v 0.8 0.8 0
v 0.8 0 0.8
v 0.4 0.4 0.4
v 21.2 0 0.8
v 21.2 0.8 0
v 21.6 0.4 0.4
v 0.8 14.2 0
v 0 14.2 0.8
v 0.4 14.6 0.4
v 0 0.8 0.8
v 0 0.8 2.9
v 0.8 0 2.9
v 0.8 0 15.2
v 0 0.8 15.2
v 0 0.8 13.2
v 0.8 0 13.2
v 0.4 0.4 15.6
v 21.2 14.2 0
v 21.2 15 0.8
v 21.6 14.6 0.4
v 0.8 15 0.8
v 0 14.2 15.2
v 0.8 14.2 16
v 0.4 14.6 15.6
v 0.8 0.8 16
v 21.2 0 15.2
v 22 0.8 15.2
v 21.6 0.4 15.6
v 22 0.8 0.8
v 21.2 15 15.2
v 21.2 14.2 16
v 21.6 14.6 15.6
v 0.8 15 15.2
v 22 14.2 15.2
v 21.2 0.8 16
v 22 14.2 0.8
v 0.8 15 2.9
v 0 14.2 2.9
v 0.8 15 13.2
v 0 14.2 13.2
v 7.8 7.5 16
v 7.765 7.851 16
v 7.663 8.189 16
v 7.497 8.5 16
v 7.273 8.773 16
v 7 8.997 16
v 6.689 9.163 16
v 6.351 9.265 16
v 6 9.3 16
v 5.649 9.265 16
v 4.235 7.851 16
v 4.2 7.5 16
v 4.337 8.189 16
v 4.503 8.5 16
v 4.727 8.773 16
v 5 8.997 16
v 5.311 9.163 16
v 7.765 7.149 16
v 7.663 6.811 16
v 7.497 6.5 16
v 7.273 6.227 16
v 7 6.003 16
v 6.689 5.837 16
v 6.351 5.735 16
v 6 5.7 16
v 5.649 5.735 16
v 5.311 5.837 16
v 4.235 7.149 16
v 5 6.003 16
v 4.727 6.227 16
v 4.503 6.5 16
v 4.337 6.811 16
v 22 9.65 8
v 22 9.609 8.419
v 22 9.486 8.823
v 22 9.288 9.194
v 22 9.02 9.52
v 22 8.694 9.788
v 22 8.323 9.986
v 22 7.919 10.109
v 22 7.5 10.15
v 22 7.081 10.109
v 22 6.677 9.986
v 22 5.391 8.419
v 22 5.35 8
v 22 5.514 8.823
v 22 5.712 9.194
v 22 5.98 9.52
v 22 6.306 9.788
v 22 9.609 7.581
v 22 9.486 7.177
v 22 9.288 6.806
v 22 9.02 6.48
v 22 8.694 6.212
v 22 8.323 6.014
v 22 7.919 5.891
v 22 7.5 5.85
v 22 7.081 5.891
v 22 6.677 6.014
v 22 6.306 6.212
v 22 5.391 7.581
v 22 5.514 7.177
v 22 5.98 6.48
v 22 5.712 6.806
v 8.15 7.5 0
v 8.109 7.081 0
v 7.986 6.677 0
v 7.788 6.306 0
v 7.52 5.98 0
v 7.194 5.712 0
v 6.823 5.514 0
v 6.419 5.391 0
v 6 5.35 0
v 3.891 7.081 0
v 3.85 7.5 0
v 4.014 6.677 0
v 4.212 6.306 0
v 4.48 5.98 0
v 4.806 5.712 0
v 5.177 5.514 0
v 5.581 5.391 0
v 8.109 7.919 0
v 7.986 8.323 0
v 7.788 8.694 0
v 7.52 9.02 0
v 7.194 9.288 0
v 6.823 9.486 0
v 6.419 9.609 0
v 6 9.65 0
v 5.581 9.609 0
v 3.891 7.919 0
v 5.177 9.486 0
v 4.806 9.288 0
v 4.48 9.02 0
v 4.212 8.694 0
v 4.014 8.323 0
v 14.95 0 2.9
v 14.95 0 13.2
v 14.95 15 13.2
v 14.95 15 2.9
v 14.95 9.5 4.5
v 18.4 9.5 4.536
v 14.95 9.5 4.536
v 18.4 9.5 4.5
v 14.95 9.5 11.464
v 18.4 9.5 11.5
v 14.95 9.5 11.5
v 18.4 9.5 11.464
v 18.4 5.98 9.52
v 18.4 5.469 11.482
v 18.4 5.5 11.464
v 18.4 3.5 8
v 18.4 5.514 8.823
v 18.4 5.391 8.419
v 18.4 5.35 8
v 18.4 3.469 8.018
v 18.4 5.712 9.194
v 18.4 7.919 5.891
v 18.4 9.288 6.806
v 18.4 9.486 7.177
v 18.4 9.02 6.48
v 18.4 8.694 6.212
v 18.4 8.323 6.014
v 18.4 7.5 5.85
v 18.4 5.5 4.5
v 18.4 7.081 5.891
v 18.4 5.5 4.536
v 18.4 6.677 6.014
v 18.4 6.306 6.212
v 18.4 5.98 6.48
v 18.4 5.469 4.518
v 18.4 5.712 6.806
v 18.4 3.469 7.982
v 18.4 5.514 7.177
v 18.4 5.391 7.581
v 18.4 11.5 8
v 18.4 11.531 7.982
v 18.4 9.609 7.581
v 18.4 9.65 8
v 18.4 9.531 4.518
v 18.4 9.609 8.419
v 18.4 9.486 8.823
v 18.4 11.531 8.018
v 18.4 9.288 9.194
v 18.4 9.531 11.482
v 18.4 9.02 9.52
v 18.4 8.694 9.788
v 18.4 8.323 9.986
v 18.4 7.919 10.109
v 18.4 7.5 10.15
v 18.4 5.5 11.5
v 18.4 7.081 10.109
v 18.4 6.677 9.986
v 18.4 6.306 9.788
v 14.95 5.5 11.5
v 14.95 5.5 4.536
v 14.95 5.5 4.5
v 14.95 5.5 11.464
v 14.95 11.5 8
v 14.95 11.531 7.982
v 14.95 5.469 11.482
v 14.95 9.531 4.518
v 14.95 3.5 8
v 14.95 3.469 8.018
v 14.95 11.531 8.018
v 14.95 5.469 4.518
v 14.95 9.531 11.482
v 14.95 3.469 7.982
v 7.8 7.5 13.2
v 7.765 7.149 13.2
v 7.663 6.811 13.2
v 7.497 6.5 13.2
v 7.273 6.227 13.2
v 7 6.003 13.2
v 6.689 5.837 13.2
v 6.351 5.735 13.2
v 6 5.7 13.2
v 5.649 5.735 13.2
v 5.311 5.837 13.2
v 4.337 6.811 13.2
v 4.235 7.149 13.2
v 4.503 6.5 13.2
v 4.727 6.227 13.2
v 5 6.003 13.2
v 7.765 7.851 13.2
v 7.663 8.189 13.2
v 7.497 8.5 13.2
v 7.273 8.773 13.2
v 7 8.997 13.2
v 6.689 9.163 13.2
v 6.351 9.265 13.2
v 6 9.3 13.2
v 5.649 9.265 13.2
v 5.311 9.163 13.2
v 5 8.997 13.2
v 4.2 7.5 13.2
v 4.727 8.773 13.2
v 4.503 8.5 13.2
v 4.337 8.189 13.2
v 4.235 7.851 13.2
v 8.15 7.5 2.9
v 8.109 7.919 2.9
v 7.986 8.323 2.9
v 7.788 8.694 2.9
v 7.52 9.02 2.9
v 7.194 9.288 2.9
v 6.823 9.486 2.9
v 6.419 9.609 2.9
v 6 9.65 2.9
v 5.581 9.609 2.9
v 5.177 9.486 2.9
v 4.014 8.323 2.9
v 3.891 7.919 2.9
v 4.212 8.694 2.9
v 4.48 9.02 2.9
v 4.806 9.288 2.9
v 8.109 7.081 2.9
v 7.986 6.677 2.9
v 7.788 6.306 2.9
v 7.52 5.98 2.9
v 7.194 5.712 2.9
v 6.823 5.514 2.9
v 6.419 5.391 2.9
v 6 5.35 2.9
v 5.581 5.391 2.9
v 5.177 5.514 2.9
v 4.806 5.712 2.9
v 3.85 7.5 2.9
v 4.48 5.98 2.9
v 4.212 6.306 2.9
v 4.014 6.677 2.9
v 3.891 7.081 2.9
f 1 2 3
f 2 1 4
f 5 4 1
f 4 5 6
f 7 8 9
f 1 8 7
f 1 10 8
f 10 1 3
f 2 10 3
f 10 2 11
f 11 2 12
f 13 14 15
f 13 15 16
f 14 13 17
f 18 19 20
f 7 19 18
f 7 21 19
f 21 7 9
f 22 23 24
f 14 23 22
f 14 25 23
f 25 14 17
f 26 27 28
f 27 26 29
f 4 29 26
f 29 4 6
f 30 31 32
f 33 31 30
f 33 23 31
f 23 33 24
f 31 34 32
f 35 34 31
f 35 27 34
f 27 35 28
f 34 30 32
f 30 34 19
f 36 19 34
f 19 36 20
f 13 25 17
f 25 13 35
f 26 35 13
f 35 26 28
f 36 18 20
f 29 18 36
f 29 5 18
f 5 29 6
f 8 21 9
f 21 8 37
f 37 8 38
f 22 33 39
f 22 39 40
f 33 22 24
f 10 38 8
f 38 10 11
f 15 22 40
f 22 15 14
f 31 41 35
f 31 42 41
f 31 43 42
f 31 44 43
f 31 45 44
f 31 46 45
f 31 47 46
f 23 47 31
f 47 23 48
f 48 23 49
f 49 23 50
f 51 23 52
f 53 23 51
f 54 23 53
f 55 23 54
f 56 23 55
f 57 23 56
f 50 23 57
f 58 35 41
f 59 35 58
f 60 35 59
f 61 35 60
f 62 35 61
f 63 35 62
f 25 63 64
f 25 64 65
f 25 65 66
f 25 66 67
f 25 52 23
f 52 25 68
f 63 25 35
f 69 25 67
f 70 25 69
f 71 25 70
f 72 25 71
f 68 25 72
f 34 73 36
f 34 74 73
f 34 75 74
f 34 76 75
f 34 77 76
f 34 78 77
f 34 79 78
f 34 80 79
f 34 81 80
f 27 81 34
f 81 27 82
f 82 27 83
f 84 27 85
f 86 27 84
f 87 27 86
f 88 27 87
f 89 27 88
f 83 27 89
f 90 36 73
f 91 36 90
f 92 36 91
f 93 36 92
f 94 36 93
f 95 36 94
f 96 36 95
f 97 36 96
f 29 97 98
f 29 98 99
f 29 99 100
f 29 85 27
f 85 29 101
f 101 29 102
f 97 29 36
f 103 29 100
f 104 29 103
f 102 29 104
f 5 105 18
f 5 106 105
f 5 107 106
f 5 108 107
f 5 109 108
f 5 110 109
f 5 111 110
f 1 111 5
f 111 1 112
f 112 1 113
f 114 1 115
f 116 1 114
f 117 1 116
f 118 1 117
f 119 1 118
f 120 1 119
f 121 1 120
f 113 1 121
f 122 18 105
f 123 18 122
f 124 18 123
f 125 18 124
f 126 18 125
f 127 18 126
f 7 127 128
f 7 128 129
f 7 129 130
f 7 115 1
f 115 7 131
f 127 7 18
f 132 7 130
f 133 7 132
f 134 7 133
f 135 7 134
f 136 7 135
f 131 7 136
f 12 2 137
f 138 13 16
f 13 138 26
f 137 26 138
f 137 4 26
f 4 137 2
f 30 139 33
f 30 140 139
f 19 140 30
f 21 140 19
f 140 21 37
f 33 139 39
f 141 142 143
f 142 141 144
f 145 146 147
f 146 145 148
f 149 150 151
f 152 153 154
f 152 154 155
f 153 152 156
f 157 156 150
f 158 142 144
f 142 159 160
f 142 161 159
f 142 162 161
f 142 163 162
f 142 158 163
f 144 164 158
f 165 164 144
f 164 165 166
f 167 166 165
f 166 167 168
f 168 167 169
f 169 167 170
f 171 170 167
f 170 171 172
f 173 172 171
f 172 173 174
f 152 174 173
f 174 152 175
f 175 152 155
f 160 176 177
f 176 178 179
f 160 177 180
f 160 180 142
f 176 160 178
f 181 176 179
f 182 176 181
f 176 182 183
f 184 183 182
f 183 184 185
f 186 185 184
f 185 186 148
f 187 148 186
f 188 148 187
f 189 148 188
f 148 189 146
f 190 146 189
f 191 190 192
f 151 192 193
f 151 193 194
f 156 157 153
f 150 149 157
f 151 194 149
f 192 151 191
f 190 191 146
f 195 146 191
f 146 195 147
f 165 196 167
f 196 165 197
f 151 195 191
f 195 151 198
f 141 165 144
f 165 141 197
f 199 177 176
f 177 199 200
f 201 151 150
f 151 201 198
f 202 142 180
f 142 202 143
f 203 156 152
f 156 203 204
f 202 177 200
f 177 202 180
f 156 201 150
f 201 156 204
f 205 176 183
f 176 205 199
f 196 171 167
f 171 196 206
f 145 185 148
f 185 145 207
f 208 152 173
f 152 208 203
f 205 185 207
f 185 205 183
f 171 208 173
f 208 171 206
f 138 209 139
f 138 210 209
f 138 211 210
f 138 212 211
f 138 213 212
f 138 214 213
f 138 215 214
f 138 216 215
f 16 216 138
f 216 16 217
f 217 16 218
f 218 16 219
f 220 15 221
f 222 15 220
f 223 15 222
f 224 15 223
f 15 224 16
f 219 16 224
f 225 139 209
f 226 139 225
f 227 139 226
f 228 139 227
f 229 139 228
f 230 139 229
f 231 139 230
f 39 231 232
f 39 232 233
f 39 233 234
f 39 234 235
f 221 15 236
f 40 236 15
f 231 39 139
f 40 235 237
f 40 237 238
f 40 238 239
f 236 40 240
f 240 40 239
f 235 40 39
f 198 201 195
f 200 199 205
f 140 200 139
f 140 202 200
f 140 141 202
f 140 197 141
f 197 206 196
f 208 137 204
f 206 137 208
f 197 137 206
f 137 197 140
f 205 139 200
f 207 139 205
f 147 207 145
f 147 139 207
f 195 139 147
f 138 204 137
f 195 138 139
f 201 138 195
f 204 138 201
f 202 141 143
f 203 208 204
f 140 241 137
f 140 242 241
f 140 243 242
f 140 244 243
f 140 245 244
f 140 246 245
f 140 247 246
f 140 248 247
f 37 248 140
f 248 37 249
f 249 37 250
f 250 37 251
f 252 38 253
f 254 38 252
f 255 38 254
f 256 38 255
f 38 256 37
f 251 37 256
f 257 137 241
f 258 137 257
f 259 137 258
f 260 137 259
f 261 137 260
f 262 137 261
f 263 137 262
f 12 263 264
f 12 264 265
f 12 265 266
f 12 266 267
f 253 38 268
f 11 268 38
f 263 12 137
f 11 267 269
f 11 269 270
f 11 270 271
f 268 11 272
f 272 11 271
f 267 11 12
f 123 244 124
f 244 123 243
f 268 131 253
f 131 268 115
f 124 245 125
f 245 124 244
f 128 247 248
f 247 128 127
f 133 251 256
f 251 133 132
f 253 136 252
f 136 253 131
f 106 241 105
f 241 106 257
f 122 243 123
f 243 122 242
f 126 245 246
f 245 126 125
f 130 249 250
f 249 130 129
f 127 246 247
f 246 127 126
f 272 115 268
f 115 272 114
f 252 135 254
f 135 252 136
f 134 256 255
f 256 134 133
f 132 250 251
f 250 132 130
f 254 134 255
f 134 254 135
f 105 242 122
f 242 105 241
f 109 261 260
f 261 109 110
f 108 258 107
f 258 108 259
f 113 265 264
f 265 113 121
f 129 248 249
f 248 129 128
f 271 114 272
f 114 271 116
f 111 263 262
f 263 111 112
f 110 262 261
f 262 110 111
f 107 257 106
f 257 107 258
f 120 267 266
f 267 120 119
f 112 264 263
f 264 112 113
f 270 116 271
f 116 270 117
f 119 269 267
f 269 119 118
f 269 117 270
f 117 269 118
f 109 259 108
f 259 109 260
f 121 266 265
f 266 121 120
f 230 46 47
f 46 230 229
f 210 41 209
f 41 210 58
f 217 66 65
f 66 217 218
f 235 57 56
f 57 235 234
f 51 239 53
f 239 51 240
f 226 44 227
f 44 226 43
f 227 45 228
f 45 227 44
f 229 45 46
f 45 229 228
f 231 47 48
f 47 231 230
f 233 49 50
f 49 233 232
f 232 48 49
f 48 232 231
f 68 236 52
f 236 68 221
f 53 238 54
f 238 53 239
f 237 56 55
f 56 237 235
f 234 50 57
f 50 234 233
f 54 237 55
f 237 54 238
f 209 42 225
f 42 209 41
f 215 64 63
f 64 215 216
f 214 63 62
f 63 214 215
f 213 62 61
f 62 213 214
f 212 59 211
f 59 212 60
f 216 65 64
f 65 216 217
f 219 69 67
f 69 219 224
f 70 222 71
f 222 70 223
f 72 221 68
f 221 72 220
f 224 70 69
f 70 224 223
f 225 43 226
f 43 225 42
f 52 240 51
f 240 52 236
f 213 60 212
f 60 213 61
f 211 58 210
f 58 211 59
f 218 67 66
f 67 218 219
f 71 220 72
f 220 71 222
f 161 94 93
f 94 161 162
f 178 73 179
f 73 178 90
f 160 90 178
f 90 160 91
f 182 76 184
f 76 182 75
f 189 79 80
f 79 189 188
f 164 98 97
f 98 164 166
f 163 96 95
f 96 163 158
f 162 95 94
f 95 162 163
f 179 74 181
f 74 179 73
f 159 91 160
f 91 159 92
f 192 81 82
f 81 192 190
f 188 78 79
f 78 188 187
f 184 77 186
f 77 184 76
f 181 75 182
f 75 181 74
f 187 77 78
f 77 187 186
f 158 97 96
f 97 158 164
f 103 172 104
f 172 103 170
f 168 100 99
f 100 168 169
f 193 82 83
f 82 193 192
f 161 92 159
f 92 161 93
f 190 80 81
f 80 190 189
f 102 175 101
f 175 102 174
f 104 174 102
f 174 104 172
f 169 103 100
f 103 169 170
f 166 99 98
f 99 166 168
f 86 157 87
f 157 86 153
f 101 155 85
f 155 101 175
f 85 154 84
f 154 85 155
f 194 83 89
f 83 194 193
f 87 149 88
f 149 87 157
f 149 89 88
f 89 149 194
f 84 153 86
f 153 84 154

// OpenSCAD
// file: Chamfer.scad
/**
  *  The MIT License (MIT)
  *
  *  "Chamfers for OpenSCAD" v0.3 Copyright (c) 2016 SebiTimeWaster
  *
  *  Permission is hereby granted, free of charge, to any person obtaining a copy
  *  of this software and associated documentation files (the "Software"), to deal
  *  in the Software without restriction, including without limitation the rights
  *  to use, copy, modify, merge, publish, distribute, sublicense, and/or sell
  *  copies of the Software, and to permit persons to whom the Software is
  *  furnished to do so, subject to the following conditions:
  *
  *  The above copyright notice and this permission notice shall be included in all
  *  copies or substantial portions of the Software.
  *
  *  THE SOFTWARE IS PROVIDED "AS IS", WITHOUT WARRANTY OF ANY KIND, EXPRESS OR
  *  IMPLIED, INCLUDING BUT NOT LIMITED TO THE WARRANTIES OF MERCHANTABILITY,
  *  FITNESS FOR A PARTICULAR PURPOSE AND NONINFRINGEMENT. IN NO EVENT SHALL THE
  *  AUTHORS OR COPYRIGHT HOLDERS BE LIABLE FOR ANY CLAIM, DAMAGES OR OTHER
  *  LIABILITY, WHETHER IN AN ACTION OF CONTRACT, TORT OR OTHERWISE, ARISING FROM,
  *  OUT OF OR IN CONNECTION WITH THE SOFTWARE OR THE USE OR OTHER DEALINGS IN THE
  *  SOFTWARE.
  */

/**
  * chamferCube returns an cube with 45° chamfers on the edges of the
  * cube. The chamfers are diectly printable on Fused deposition
  * modelling (FDM) printers without support structures.
  *
  * @param  sizeX          The size of the cube along the x axis
  * @param  sizeY          The size of the cube along the y axis
  * @param  sizeZ          The size of the cube along the z axis
  * @param  chamferHeight  The "height" of the chamfers as seen from
  *                        one of the dimensional planes (The real
  *                        width is side c in a right angled triangle)
  * @param  chamferX       Which chamfers to render along the x axis
  *                        in clockwise order starting from the zero
  *                        point, as seen from "Left view" (Ctrl + 6)
  * @param  chamferY       Which chamfers to render along the y axis
  *                        in clockwise order starting from the zero
  *                        point, as seen from "Front view" (Ctrl + 8)
  * @param  chamferZ       Which chamfers to render along the z axis
  *                        in clockwise order starting from the zero
  *                        point, as seen from "Bottom view" (Ctrl + 5)
  */
module chamferCube(sizeX, sizeY, sizeZ, chamferHeight = 1, chamferX = [1, 1, 1, 1], chamferY = [1, 1, 1, 1], chamferZ = [1, 1, 1, 1]) {
    chamferCLength = sqrt(chamferHeight * chamferHeight * 2);
    difference() {
        cube([sizeX, sizeY, sizeZ]);
        for(x = [0 : 3]) {
            chamferSide1 = min(x, 1) - floor(x / 3); // 0 1 1 0
            chamferSide2 = floor(x / 2); // 0 0 1 1
            if(chamferX[x]) {
                translate([-0.1, chamferSide1 * sizeY, -chamferHeight + chamferSide2 * sizeZ])
                rotate([45, 0, 0])
                cube([sizeX + 0.2, chamferCLength, chamferCLength]);
            }
            if(chamferY[x]) {
                translate([-chamferHeight + chamferSide2 * sizeX, -0.1, chamferSide1 * sizeZ])
                rotate([0, 45, 0])
                cube([chamferCLength, sizeY + 0.2, chamferCLength]);
            }
            if(chamferZ[x]) {
                translate([chamferSide1 * sizeX, -chamferHeight + chamferSide2 * sizeY, -0.1])
                rotate([0, 0, 45])
                cube([chamferCLength, chamferCLength, sizeZ + 0.2]);
            }
        }
    }
}

/**
  * chamferCylinder returns an cylinder or cone with 45° chamfers on
  * the edges of the cylinder. The chamfers are diectly printable on
  * Fused deposition modelling (FDM) printers without support structures.
  *
  * @param  height         Height of the cylinder
  * @param  radius         Radius of the cylinder (At the bottom)
  * @param  radius2        Radius of the cylinder (At the top)
  * @param  chamferHeight  The "height" of the chamfers as seen from
  *                        one of the dimensional planes (The real
  *                        width is side c in a right angled triangle)
  * @param  angle          The radius of the visible part of a wedge
  *                        starting from the x axis counter-clockwise
  * @param  quality        A circle quality factor where 1.0 is a fairly
  *                        good quality, range from 0.0 to 2.0
  */
module chamferCylinder(height, radius, radius2=undef, chamferHeight = 1, angle = 0, quality = -1.0) {
    radius2 = (radius2 == undef) ? radius : radius2;
    module cc() {
        if(chamferHeight != 0) {
            translate([0, 0, height - abs(chamferHeight)]) cylinder(abs(chamferHeight), r1 = radius2, r2 = radius2 - chamferHeight, $fn = circleSegments(radius2, quality));
        }
        translate([0, 0, abs(chamferHeight)]) cylinder(height - abs(chamferHeight) * 2, r1 = radius, r2 = radius2, $fn = circleSegments(max(radius, radius2), quality));
        if(chamferHeight != 0) {
            cylinder(abs(chamferHeight), r1 = radius - chamferHeight, r2 = radius, $fn = circleSegments(radius, quality));
        }
    }
    module box(brim = abs(min(chamferHeight, 0)) + 1) {
        translate([-radius - brim, 0, -brim]) cube([radius * 2 + brim * 2, radius + brim, height + brim * 2]);
    }
    module hcc() {
        intersection() {
            cc();
            box();
        }
    }
    if(angle <= 0 || angle >= 360) cc();
    else {
        if(angle > 180) hcc();
        difference() {
            if(angle <= 180) hcc();
            else rotate([0, 0, 180]) hcc();
            rotate([0, 0, angle]) box(abs(min(chamferHeight, 0)) + radius);
        }
    }
}

/**
  * circleSegments calculates the number of segments needed to maintain
  * a constant circle quality.
  * If a globalSegementsQuality variable exist it will overwrite the
  * standard quality setting (1.0). Order of usage is:
  * Standard (1.0) <- globalCircleQuality <- Quality parameter
  *
  * @param  r        Radius of the circle
  * @param  quality  A quality factor, where 1.0 is a fairly good
  *                  quality, range from 0.0 to 2.0
  *
  * @return  The number of segments for the circle
  */
function circleSegments(r, quality = -1.0) = (r * PI * 4 + 40) * ((quality >= 0.0) ? quality : globalCircleQuality);

// set global quality to 1.0, can be overridden by user
globalCircleQuality = 1.0;
// main file
include <Chamfer.scad>;

length = 22;
width = 15;
height = 16;
bearing_height = 10.2;
bearing_space = 15;
bearing_pos = 6;
epsilon = 0.1;
fn = 32;
drill_diameter1 = 4.3; // for M4
drill_diameter2 = 3.6; // for M4
// M3 = 5.5 mm, M4 = 7 mm, M5 = 8 mm, M6 = 10 mm
nut_size = 7; // [5:0.1:20]
// M3 = 3 mm, M6 = 6 mm, and so on...
nut_diameter = 4; // [3:0.1:20]
// M3 = 2.6 mm, M4 = 3.44 mm, M5 = 4.24 mm, M6 = 5.24 mm
nut_height = 3.5; // [2:0.1:15]

difference()
{
//    cube([length, width, height], center = false);
    chamferCube(length, width, height, 0.8);
    translate([-epsilon / 2, -epsilon / 2, height / 2 - bearing_height / 2]) cube([bearing_space, width + epsilon, bearing_height + epsilon], center=false);
//    translate([length - width / 2, width / 2, 0]) cylinder(d=drill_diameter,h=height + epsilon, $fn=fn);
    translate([bearing_pos, width / 2, 0]) cylinder(d=drill_diameter1,h=height / 2, $fn=fn);
    translate([bearing_pos, width / 2, height / 2]) cylinder(d=drill_diameter2,h=height / 2 + epsilon, $fn=fn);
    translate([0, width / 2, height / 2]) rotate([0, 90, 0]) cylinder(d=drill_diameter1,h=length + epsilon, $fn=fn);
    translate([bearing_space + nut_height / 2 - epsilon, width / 2, height / 2]) rotate([0, 90, 0]) hexagon(nut_size, nut_height, 90);
}

module hexagon(width, height, baseAngle) 
{
  bwidth = width / 1.75;
  for (angle = [baseAngle, baseAngle + 60, baseAngle + 120]) 
  {
      rotate([0, 0, angle]) cube([bwidth, width, height], true);
  }
}
